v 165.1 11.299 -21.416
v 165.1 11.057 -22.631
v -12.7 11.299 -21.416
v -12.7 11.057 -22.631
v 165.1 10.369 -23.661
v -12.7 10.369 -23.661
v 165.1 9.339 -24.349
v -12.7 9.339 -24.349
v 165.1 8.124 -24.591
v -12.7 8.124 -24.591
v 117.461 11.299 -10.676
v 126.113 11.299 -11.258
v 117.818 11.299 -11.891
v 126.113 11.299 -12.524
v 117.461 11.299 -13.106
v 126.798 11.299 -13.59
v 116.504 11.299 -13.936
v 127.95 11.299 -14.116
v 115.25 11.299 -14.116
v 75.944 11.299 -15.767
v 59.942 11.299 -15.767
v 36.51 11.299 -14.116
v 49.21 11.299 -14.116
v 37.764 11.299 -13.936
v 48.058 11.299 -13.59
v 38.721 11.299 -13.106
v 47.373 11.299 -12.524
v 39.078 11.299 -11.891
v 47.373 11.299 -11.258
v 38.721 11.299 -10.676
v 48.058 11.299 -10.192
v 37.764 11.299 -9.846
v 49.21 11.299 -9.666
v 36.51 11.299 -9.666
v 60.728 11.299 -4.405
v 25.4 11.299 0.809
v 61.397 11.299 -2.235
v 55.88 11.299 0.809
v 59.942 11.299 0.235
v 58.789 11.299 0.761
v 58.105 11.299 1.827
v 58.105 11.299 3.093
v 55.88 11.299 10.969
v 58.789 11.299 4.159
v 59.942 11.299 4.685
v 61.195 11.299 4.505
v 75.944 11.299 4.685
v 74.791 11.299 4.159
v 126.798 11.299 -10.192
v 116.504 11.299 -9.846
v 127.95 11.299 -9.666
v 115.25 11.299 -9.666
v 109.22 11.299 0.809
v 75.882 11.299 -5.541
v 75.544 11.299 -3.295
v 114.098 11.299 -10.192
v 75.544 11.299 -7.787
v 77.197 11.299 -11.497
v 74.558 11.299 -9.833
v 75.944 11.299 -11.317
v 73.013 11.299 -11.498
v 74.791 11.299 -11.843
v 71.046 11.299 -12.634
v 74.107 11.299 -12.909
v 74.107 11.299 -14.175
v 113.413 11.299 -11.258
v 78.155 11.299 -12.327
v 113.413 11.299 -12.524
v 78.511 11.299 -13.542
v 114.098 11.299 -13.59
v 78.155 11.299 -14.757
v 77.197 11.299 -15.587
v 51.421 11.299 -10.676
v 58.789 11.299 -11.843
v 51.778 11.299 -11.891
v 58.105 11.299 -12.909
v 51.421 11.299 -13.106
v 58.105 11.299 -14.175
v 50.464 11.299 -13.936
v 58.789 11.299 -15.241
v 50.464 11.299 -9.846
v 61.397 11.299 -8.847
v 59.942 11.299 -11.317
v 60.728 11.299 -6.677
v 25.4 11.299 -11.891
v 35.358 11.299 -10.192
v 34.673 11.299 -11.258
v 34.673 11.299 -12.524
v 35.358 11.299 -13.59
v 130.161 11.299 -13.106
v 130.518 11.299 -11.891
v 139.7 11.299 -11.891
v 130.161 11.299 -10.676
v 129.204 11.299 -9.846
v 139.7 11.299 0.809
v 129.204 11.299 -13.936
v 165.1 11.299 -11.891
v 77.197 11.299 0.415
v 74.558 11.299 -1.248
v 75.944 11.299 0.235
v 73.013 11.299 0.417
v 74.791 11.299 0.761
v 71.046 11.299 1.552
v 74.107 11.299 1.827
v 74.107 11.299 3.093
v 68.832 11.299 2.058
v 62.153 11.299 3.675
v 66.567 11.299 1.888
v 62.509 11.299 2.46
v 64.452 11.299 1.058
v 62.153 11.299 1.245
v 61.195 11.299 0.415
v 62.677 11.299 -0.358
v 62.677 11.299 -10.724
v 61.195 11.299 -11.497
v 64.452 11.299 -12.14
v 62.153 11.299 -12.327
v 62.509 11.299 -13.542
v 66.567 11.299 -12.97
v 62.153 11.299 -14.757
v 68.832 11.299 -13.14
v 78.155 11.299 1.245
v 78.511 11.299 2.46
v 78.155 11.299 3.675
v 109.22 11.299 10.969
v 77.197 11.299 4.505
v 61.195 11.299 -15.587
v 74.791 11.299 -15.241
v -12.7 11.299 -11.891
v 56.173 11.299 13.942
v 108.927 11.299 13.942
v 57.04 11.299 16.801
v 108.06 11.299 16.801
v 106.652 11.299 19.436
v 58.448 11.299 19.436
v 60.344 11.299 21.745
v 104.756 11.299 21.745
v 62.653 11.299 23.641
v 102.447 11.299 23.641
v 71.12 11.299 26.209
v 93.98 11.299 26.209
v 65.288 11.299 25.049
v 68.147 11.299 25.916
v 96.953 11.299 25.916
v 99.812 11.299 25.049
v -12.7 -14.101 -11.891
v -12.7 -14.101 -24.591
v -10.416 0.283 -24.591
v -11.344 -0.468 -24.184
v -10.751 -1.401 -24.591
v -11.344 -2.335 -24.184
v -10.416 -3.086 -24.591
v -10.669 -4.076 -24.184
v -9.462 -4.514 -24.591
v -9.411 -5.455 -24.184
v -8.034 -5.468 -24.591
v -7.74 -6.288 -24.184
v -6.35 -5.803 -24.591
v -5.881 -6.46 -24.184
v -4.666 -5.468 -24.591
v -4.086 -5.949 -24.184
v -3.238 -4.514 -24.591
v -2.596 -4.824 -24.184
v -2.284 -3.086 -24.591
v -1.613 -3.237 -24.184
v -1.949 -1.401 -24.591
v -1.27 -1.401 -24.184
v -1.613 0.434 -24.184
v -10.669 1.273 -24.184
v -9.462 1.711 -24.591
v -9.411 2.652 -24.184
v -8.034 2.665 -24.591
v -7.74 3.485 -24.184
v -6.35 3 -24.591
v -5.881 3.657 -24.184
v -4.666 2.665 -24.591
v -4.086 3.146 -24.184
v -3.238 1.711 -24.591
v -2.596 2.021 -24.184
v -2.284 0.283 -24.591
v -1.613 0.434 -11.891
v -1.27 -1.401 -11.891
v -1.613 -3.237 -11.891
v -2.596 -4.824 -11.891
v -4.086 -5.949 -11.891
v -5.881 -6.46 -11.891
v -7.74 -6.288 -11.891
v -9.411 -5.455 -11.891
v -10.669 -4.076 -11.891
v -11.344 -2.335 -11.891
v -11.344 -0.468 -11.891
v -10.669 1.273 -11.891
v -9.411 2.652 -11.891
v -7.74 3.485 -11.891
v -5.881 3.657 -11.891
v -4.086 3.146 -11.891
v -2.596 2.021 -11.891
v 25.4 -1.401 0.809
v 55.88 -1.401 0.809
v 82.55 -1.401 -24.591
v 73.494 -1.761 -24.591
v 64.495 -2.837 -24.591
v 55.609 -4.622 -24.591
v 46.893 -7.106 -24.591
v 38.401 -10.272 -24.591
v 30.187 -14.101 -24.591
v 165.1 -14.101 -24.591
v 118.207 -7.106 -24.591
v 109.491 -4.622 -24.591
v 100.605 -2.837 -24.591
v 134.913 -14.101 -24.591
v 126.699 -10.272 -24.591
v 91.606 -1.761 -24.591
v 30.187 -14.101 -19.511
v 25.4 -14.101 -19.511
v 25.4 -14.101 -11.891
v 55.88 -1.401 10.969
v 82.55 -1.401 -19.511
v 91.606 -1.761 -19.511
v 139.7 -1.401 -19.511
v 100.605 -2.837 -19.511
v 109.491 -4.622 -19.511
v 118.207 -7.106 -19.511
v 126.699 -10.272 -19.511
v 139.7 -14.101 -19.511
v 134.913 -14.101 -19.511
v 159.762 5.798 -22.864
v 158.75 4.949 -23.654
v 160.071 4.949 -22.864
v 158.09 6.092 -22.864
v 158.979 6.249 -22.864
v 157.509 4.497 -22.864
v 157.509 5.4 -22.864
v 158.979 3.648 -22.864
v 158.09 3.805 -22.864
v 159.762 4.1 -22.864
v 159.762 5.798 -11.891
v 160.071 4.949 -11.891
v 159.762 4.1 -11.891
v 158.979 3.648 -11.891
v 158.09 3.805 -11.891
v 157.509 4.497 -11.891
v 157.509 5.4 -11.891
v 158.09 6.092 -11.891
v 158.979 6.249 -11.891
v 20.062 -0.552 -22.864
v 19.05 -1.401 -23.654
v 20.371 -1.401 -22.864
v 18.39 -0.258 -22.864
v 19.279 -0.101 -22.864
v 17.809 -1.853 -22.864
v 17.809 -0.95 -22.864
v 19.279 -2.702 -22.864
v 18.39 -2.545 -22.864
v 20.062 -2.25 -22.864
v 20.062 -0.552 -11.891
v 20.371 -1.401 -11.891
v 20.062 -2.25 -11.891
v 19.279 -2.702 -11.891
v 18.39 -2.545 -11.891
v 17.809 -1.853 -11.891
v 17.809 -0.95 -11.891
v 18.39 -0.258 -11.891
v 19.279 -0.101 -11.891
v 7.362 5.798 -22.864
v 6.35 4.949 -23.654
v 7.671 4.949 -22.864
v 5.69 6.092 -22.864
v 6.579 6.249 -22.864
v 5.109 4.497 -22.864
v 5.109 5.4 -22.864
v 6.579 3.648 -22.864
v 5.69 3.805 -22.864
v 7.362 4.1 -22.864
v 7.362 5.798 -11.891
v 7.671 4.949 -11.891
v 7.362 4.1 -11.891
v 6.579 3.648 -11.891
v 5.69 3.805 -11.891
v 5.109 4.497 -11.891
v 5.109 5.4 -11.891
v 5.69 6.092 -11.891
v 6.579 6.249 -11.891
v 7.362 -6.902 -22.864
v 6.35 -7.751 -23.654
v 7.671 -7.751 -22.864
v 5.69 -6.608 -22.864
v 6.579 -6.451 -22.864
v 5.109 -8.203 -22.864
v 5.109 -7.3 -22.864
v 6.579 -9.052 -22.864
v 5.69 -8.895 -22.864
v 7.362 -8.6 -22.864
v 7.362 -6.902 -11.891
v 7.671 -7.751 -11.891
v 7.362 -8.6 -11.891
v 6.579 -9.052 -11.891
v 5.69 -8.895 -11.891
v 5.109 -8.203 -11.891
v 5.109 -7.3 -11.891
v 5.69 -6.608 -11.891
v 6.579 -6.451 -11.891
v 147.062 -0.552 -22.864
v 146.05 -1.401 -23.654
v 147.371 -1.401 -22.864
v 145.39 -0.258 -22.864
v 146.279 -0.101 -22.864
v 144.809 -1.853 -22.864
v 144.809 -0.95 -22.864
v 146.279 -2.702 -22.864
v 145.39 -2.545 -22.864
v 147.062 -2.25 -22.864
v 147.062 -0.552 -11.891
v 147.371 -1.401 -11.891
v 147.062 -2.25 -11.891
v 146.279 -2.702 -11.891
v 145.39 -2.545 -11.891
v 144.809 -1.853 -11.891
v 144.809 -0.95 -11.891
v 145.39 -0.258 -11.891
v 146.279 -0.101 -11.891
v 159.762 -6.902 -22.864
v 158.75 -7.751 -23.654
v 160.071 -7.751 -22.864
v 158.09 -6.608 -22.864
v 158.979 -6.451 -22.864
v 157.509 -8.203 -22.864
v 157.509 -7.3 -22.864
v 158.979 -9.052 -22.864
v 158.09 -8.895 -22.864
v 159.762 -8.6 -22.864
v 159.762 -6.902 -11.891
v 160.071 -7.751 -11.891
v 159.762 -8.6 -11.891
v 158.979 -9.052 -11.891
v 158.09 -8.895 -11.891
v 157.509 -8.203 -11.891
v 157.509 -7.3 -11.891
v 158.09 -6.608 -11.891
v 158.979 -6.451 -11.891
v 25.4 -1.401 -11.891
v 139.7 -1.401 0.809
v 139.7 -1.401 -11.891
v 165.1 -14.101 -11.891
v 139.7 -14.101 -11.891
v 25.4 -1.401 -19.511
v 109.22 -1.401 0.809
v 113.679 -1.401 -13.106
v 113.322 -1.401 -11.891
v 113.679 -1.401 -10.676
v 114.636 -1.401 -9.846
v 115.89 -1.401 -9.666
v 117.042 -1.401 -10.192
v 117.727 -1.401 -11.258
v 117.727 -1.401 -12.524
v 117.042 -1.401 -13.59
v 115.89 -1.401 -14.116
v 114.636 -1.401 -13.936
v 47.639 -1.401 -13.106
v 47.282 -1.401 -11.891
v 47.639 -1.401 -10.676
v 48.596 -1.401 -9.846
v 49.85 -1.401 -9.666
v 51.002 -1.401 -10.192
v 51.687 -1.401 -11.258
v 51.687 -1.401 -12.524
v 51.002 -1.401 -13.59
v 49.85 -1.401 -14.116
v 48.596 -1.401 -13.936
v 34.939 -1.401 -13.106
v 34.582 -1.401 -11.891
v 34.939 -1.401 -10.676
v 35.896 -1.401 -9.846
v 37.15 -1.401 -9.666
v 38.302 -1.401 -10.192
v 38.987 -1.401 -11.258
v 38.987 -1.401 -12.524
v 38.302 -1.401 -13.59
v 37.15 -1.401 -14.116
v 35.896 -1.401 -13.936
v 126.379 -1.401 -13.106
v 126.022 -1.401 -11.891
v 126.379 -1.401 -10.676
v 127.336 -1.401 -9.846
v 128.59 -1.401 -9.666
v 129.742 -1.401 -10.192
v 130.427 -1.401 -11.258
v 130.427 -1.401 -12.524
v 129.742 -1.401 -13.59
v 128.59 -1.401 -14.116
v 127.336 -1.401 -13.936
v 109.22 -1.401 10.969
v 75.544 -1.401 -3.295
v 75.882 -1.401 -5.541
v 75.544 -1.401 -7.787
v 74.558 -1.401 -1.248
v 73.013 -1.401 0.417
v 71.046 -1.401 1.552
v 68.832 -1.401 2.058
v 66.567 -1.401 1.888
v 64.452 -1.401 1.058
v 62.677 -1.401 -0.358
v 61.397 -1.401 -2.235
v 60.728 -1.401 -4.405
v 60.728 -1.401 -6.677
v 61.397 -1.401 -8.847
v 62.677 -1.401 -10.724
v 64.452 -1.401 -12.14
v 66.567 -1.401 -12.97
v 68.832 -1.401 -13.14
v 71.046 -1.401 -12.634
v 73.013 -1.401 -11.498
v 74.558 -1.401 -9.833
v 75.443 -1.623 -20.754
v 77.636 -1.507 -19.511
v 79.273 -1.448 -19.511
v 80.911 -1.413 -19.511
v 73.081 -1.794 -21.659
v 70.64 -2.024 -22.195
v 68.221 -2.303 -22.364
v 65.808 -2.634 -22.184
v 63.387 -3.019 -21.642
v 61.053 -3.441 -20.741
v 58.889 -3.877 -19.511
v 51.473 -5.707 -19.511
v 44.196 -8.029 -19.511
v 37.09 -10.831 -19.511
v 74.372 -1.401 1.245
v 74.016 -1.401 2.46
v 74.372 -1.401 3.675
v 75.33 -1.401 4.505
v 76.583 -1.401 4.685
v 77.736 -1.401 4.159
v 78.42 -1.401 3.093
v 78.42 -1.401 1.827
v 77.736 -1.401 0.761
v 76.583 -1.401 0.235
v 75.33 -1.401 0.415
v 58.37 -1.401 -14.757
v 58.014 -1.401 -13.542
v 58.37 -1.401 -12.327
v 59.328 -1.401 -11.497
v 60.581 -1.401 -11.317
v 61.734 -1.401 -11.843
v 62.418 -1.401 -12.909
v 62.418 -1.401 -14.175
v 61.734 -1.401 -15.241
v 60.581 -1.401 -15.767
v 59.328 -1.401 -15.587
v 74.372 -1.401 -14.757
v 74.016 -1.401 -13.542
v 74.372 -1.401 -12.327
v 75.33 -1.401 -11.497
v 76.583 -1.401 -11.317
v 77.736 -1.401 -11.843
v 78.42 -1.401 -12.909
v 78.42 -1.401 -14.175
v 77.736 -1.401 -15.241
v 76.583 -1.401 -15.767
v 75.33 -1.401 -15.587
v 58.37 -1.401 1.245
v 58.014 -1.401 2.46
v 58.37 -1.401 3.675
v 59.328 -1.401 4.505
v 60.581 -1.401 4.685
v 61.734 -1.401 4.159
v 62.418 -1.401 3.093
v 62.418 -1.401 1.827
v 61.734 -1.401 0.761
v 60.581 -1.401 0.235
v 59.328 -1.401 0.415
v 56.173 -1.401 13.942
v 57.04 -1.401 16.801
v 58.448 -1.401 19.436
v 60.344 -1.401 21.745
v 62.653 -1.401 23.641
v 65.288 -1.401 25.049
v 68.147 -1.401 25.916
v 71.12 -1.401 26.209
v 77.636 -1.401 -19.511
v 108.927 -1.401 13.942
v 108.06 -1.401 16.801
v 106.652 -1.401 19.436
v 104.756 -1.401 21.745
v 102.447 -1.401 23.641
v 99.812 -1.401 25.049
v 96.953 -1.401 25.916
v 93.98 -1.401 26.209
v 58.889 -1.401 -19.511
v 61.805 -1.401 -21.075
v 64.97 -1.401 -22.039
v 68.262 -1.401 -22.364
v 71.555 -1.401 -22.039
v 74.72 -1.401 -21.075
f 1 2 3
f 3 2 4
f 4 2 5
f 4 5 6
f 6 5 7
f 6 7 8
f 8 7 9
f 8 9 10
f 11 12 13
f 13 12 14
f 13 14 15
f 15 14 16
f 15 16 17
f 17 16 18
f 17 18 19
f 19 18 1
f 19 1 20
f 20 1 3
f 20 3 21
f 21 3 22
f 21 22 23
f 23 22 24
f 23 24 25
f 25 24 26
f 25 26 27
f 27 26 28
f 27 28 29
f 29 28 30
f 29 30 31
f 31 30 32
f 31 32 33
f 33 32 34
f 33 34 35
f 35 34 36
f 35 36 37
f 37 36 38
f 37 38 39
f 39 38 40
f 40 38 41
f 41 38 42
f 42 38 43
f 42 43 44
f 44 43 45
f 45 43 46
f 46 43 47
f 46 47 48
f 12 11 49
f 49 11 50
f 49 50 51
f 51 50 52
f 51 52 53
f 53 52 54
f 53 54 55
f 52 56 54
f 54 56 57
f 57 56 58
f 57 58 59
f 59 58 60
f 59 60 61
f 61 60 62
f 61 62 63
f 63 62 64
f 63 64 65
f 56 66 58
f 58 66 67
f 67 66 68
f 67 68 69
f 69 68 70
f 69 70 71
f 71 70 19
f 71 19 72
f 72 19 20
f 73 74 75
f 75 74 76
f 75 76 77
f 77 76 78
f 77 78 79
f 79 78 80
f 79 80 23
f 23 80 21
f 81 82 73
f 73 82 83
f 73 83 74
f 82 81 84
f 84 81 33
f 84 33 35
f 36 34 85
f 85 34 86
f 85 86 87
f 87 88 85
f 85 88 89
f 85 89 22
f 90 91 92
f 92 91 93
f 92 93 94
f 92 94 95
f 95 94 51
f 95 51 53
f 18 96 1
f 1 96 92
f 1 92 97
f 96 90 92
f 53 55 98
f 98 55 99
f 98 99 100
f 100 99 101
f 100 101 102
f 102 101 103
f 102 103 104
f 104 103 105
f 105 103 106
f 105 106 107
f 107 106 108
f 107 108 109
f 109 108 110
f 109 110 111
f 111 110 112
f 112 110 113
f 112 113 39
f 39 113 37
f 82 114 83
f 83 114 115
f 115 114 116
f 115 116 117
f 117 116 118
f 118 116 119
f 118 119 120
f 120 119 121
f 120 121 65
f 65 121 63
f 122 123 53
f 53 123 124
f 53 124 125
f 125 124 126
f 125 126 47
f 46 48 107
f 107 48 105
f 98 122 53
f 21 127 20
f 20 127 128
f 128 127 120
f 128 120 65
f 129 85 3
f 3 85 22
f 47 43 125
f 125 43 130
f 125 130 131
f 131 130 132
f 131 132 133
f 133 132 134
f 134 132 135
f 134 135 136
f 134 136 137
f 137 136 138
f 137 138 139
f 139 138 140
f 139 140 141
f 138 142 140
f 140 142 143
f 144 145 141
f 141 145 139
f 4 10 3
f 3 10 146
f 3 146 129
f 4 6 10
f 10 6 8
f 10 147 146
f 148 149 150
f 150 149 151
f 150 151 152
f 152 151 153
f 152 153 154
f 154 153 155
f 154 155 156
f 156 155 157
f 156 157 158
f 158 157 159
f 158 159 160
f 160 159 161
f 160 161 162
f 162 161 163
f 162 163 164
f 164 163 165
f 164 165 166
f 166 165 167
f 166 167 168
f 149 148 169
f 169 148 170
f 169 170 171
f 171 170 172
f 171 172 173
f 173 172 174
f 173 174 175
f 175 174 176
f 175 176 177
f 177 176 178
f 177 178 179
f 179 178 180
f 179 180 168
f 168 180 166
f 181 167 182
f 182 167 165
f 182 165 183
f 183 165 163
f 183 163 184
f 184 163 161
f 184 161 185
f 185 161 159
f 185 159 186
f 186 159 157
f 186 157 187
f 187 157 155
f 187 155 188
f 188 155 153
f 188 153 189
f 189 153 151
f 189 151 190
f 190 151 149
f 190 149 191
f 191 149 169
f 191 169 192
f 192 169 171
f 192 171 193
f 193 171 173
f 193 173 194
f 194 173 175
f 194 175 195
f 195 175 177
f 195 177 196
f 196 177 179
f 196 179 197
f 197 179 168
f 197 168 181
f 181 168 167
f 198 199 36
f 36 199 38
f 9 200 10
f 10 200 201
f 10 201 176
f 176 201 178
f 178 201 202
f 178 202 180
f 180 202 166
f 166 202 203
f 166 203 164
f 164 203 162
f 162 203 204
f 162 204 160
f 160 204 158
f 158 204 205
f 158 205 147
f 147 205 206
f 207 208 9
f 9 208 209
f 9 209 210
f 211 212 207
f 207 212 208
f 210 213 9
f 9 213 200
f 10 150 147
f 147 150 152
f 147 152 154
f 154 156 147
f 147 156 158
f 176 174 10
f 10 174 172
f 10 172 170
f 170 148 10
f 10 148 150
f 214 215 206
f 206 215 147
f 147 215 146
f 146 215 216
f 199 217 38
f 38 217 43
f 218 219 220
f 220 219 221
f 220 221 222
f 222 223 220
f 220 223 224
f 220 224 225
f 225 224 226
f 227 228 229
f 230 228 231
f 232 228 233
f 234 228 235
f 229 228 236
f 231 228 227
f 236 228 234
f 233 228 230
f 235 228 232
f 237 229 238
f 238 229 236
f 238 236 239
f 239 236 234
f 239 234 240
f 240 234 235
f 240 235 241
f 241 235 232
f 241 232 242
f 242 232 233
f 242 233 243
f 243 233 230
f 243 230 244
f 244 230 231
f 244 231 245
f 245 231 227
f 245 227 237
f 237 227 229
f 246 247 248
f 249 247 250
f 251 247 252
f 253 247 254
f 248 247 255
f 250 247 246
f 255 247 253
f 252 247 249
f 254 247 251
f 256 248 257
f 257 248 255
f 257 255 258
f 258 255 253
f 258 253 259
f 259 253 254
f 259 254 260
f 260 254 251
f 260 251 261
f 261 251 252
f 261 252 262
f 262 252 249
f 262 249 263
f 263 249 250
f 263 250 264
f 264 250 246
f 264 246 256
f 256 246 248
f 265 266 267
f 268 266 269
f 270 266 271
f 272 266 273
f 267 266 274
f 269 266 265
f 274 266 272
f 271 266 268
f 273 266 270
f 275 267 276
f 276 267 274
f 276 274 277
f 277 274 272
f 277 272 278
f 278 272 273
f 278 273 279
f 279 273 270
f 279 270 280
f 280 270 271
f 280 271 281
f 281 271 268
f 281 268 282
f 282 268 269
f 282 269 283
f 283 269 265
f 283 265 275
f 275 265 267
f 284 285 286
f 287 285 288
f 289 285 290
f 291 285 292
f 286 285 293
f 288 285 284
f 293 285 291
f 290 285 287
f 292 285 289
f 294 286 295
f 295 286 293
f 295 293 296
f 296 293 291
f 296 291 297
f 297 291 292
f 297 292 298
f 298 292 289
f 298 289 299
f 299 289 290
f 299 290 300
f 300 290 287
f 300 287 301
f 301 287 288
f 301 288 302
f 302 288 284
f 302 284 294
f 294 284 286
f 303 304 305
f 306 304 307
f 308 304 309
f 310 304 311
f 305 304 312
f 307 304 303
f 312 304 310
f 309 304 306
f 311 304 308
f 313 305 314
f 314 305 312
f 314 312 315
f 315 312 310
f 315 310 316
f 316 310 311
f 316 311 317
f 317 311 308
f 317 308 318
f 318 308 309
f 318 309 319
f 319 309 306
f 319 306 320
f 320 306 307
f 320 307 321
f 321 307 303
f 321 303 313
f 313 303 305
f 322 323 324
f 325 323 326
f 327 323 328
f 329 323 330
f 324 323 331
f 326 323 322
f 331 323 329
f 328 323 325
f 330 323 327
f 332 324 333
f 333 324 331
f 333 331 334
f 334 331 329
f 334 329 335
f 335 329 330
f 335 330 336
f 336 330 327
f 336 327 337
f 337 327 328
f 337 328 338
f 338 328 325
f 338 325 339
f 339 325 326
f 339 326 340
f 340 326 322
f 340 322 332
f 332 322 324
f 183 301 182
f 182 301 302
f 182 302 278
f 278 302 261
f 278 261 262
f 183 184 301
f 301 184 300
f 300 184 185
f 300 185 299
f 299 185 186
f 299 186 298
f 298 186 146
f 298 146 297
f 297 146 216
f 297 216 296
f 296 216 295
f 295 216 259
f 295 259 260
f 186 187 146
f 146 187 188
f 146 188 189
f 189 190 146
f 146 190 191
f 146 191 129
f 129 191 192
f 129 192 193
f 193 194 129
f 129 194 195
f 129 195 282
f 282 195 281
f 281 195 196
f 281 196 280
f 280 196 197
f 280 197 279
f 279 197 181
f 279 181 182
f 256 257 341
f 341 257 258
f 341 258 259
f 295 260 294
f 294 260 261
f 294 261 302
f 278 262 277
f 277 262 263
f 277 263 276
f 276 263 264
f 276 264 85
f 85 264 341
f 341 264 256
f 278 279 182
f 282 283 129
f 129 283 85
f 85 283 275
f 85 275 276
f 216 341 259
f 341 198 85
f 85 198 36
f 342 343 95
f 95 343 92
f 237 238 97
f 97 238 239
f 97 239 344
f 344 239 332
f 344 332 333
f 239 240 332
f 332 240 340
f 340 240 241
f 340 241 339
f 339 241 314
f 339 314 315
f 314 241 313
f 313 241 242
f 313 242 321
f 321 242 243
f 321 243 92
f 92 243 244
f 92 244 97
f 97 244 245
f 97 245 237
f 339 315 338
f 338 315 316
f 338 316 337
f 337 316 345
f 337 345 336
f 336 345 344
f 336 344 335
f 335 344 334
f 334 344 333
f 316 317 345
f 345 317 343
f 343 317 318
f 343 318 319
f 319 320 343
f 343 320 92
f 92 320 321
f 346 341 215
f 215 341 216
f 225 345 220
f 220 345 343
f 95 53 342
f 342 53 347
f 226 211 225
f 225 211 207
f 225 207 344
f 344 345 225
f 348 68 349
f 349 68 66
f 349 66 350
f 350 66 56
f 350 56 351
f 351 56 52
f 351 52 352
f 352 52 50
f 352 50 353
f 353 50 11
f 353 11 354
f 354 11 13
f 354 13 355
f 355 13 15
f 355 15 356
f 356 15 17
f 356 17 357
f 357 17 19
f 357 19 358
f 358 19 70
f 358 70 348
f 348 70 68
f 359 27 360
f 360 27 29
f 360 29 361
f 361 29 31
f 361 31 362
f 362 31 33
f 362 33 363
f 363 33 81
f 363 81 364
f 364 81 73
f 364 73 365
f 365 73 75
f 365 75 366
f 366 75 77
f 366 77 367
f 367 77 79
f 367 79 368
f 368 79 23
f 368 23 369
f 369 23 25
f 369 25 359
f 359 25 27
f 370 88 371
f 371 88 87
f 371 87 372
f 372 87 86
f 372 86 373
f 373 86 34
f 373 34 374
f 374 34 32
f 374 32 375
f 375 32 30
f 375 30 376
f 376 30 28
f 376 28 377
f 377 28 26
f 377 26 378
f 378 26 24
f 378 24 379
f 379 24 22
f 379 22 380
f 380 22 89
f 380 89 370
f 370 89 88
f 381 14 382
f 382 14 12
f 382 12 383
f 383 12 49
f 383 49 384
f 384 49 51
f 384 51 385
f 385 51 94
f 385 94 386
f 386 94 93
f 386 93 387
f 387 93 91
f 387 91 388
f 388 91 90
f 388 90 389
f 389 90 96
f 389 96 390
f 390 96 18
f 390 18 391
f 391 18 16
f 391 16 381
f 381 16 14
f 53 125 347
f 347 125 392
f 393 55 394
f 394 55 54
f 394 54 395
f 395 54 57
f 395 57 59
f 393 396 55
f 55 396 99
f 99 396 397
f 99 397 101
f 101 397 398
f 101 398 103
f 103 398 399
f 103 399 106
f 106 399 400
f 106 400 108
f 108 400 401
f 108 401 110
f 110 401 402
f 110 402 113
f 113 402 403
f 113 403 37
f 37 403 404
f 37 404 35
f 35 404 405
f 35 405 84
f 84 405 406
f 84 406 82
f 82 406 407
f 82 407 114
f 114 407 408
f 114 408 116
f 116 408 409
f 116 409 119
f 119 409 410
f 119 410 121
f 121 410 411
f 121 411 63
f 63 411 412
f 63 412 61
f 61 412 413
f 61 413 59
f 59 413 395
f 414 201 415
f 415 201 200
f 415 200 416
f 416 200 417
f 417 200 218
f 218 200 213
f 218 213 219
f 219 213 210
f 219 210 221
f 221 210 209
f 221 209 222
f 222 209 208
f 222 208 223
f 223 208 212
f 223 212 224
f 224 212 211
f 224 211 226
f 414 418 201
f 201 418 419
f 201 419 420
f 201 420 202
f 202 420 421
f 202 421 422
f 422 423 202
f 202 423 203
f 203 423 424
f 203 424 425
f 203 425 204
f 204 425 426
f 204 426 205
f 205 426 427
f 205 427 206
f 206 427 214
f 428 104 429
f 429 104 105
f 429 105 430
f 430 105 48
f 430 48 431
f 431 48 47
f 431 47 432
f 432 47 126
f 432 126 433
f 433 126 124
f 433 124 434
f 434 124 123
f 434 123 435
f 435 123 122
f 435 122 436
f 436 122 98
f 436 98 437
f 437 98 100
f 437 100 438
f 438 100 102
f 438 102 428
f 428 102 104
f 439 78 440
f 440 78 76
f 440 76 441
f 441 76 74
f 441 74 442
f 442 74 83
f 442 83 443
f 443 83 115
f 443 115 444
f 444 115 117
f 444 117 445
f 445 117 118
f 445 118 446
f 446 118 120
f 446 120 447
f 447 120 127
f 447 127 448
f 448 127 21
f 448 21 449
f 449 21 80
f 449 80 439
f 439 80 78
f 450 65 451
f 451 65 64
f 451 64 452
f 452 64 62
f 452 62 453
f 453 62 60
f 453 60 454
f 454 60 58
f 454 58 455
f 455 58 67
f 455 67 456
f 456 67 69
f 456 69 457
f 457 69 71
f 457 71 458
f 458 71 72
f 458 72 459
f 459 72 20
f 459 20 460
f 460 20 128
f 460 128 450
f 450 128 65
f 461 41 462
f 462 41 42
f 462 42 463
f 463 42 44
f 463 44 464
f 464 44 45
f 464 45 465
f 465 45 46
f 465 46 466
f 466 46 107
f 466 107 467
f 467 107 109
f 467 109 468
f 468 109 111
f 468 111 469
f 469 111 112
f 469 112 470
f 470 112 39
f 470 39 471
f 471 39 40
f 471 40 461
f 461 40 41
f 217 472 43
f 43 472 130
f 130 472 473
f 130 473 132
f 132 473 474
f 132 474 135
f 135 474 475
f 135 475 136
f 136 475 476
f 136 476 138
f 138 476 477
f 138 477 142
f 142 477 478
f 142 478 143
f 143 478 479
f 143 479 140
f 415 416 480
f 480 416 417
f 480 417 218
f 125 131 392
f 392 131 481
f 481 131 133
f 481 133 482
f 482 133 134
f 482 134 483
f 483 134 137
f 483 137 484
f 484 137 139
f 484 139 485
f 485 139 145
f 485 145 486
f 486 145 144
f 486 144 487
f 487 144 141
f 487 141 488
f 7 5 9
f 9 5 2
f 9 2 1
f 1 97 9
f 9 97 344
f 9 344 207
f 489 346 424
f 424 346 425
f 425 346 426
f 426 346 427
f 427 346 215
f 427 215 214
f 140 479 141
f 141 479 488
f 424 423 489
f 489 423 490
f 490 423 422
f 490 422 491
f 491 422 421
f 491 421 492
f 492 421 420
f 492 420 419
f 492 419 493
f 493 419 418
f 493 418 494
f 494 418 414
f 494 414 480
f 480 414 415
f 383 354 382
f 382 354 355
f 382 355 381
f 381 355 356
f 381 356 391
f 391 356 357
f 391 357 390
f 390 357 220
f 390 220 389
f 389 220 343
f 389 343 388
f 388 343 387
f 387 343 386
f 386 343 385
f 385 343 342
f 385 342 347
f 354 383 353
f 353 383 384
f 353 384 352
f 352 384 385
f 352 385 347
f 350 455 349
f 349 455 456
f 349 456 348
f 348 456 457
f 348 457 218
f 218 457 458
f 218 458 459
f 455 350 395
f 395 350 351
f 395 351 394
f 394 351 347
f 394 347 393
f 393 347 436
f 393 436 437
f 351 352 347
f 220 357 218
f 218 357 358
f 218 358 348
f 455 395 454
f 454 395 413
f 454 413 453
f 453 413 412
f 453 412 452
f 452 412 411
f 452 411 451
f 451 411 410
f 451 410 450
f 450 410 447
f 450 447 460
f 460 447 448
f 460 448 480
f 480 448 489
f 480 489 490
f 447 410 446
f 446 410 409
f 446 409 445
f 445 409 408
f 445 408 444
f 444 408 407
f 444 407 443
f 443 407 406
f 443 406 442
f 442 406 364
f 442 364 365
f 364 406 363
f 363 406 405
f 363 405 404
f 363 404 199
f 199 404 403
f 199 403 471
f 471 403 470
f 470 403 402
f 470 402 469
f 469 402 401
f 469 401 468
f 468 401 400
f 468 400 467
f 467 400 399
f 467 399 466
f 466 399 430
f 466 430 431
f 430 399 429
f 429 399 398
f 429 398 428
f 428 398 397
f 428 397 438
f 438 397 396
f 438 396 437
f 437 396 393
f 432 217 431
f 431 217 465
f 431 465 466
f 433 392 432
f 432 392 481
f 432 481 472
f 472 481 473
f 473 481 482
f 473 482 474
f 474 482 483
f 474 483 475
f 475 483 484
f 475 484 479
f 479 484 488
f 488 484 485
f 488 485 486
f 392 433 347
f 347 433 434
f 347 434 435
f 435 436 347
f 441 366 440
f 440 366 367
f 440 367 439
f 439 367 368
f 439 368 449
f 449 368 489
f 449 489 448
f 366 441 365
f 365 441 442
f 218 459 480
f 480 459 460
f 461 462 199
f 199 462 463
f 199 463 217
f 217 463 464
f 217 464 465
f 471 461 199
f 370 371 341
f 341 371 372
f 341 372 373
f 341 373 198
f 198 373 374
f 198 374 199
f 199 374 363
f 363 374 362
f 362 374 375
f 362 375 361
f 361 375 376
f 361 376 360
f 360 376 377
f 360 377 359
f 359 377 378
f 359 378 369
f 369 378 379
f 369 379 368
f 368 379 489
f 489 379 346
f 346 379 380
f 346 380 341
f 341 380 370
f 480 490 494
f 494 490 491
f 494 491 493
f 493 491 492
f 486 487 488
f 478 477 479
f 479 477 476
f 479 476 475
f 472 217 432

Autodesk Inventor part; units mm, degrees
ref_plane "YZ Plane" through (0, 0, 0) normal (1, 0, 0) x (0, 1, 0)
ref_plane "XZ Plane" through (0, 0, 0) normal (0, 1, 0) x (-1, 0, 0)
ref_plane "XY Plane" through (0, 0, 0) normal (0, 0, 1) x (1, 0, 0)
sketch "Sketch1" plane through (0, 0, 0) normal (1, 0, 0) x (0, 1, 0)
  line L0 (11.2985, 26.2091) -> (-1.4015, 26.2091)
  line L1 (-1.4015, 26.2091) -> (-1.4015, -24.5909)
  line L2 (-1.4015, -24.5909) -> (11.2985, -24.5909)
  line L3 (11.2985, -24.5909) -> (11.2985, 26.2091)
  point P0 (0, 0)
  dimension "d0" = 50.8
  dimension "d1" = 12.7
extrude "Extrusion1" add sketch "Sketch1" along normal blind 165.1
sketch "Sketch2" plane through (0, 11.2985, 26.2091) normal (0, 1, 0) x (1, 0, 0)
  circle A0 centre (68.2625, 31.75) radius 12.7
  circle A1 centre (87.3125, 31.75) radius 12.7
  line L0 (0, 50.8) -> (0, 0) projected
  line L1 (0, 50.8) -> (165.1, 50.8) projected
  point P0 (0, 26.2091)
  point P1 (60.2615, 39.751)
  point P2 (76.2635, 39.751)
  point P3 (76.2635, 23.749)
  point P4 (60.2615, 23.749)
  dimension "d4" = 25.4
  dimension "d5" = 25.4
  dimension "d6" = 0
  dimension "d7" = 19.05
  dimension "d8" = 68.2625
  dimension "d9" = 19.05
  dimension "d46" = 0
  dimension "d47" = 0
  dimension "d48" = 0
  dimension "d49" = 0
  dimension "d50" = 16.002
  dimension "d51" = 16.002
  dimension "d52" = 8.001
  dimension "d53" = 8.001
sketch "Sketch8" plane through (0, 11.2985, 26.2091) normal (0, 1, 0) x (1, 0, 0)
  line L0 (-37.599, -14.8006) -> (55.88, -14.8006)
  line L1 (55.88, -14.8006) -> (55.88, 38.1)
  line L2 (55.88, 38.1) -> (-37.599, 38.1)
  line L3 (-37.599, 38.1) -> (-37.599, -14.8006)
  line L4 (109.22, -16.386) -> (193.9952, -16.386)
  line L5 (193.9952, -16.386) -> (193.9952, 38.1)
  line L6 (193.9952, 38.1) -> (109.22, 38.1)
  line L7 (109.22, 38.1) -> (109.22, -16.386)
  line L8 (0, 50.8) -> (165.1, 50.8) projected
  line L9 (0, 50.8) -> (0, 0) projected
  line L10 (165.1, 50.8) -> (165.1, 0) projected
  point P0 (0, 26.2091)
  dimension "d36" = 12.7
  dimension "d37" = 55.88
  dimension "d38" = 12.7
  dimension "d39" = 55.88
extrude "Extrusion8" cut sketch "Sketch8" against normal blind 76.2
fillet "Fillet1" radius 15.24 1 edges at (109.22, 4.9485, 26.2091)
fillet "Fillet2" radius 15.24 1 edges at (55.88, 4.9485, 26.2091)
hole "Hole1" at (60.2615, 11.2985, -13.5419) at (76.2635, 11.2985, -13.5419) at (76.2635, 11.2985, 2.4601) at (60.2615, 11.2985, 2.4601) direction (0, -1, 0) diameter 4.4958 end through all clearance for "Flat Head Machine Screw" size "M4" standard "Ansi Metric M Profile"
sketch "Sketch10" plane through (0, 11.2985, -24.5909) normal (0, 1, 0) x (1, 0, 0)
  circle A0 centre (76.2635, -27.051) radius 2.2479 projected
  circle A1 centre (60.2615, -11.049) radius 2.2479 projected
  circle A2 centre (60.2615, -27.051) radius 2.2479 projected
  circle A3 centre (76.2635, -11.049) radius 2.2479 projected
  line L0 (76.2635, -11.049) -> (60.2615, -27.051)
  line L1 (60.2615, -11.049) -> (76.2635, -27.051)
  point P0 (0, -24.5909)
  point P1 (68.2625, -19.05)
  dimension "d61" = 8.001
  dimension "d62" = 8.001
hole "Hole2" at (68.2625, 11.2985, -5.5409) direction (0, -1, 0) diameter 15.24 end through all
sketch "Sketch11" plane through (0, 11.2985, -11.8909) normal (0, 0, 1) x (1, 0, 0)
  line L0 (55.88, 0) -> (0, 0)
  line L1 (0, 0) -> (0, -12.7)
  line L2 (0, -12.7) -> (55.88, -12.7)
  line L3 (55.88, -12.7) -> (55.88, 0)
  line L4 (0, -12.7) -> (0, 0) projected
  line L5 (55.88, 0) -> (55.88, -12.7) projected
  line L6 (0, 0) -> (55.88, 0) projected
  line L7 (55.88, -12.7) -> (0, -12.7) projected
  point P0 (0, -11.2985)
  dimension "d70" = 0
  dimension "d71" = 0
  dimension "d72" = 0
  dimension "d73" = 0
extrude "Extrusion9" add sketch "Sketch11" along normal blind 12.7
sketch "Sketch12" plane through (109.22, 11.2985, -11.8909) normal (0, 0, 1) x (1, 0, 0)
  line L0 (0, 0) -> (55.88, 0)
  line L1 (55.88, 0) -> (55.88, -12.7)
  line L2 (55.88, -12.7) -> (0, -12.7)
  line L3 (0, -12.7) -> (0, 0)
  line L4 (55.88, 0) -> (55.88, -12.7) projected
  line L5 (0, 0) -> (55.88, 0) projected
  line L6 (55.88, -12.7) -> (0, -12.7) projected
  line L7 (0, -12.7) -> (0, 0) projected
  point P0 (-109.22, -11.2985)
  dimension "d76" = 0
  dimension "d77" = 0
  dimension "d78" = 0
  dimension "d79" = 0
extrude "Extrusion10" add sketch "Sketch12" along normal blind 12.7
sketch "Sketch13" plane through (0, 11.2985, -24.5909) normal (0, 1, 0) x (1, 0, 0)
  line L0 (55.88, -25.4) -> (55.88, -35.56) projected
  line L1 (0, 0) -> (165.1, 0) projected
  line L2 (109.22, -35.56) -> (109.22, -25.4) projected
  point P0 (0, -24.5909)
  point P1 (49.53, -12.7)
  point P2 (36.83, -12.7)
  point P3 (115.57, -12.7)
  point P4 (128.27, -12.7)
  dimension "d82" = 19.05
  dimension "d83" = 6.35
  dimension "d84" = 12.7
  dimension "d85" = 12.7
  dimension "d86" = 6.35
  dimension "d87" = 19.05
  dimension "d88" = 12.7
  dimension "d89" = 12.7
hole "Hole3" at (49.53, 11.2985, -11.8909) at (36.83, 11.2985, -11.8909) at (115.57, 11.2985, -11.8909) at (128.27, 11.2985, -11.8909) direction (0, -1, 0) diameter 4.4958 depth 25.4 tip angle 118.188 clearance for "Flat Head Machine Screw (82)" size "#8" standard "Ansi Unified Screw Threads"
sketch "Sketch14" plane through (0, 11.2985, -24.5909) normal (0, 1, 0) x (1, 0, 0)
  line L0 (0, 0) -> (25.4, 0)
  line L1 (25.4, 0) -> (25.4, -25.4)
  line L2 (25.4, -25.4) -> (0, -25.4)
  line L3 (0, -25.4) -> (0, 0)
  line L4 (165.1, 0) -> (139.7, 0)
  line L5 (139.7, 0) -> (139.7, -25.4)
  line L6 (139.7, -25.4) -> (165.1, -25.4)
  line L7 (165.1, -25.4) -> (165.1, 0)
  line L8 (0, 0) -> (165.1, 0) projected
  line L9 (165.1, 0) -> (165.1, -25.4) projected
  line L10 (165.1, -25.4) -> (109.22, -25.4) projected
  line L11 (0, 0) -> (0, -25.4) projected
  line L12 (55.88, -25.4) -> (0, -25.4) projected
  point P0 (0, -24.5909)
  dimension "d97" = 0
  dimension "d98" = 25.4
  dimension "d99" = 0
  dimension "d100" = 0
  dimension "d101" = 25.4
  dimension "d102" = 0
  dimension "d103" = 0
  dimension "d104" = 0
extrude "Extrusion11" add sketch "Sketch14" against normal blind 25.4
sketch "Sketch16" plane through (0, -14.1015, -24.5909) normal (0, -1, 0) x (1, 0, 0)
  line L0 (-15.071, 42.5671) -> (25.4, 42.5671)
  line L1 (25.4, 42.5671) -> (25.4, 12.7)
  line L2 (25.4, 12.7) -> (-15.071, 12.7)
  line L3 (-15.071, 12.7) -> (-15.071, 42.5671)
  line L4 (139.7, 42.5671) -> (181.0335, 42.5671)
  line L5 (181.0335, 42.5671) -> (181.0335, 12.7)
  line L6 (181.0335, 12.7) -> (139.7, 12.7)
  line L7 (139.7, 12.7) -> (139.7, 42.5671)
  line L8 (165.1, 25.4) -> (139.7, 25.4) projected
  line L9 (139.7, 25.4) -> (139.7, 0) projected
  line L10 (25.4, 0) -> (25.4, 25.4) projected
  line L11 (25.4, 25.4) -> (0, 25.4) projected
  point P0 (0, 24.5909)
  dimension "d112" = 12.7
  dimension "d113" = 0
  dimension "d114" = 0
  dimension "d115" = 12.7
extrude "Extrusion13" cut sketch "Sketch16" against normal blind 50.8
sketch "Sketch17" plane through (0, -14.1015, -11.8909) normal (0, 0, 1) x (1, 0, 0)
  line L0 (0, 0) -> (0, 25.4) projected
  line L1 (0, 25.4) -> (25.4, 25.4) projected
  line L2 (25.4, 0) -> (0, 0) projected
  line L3 (165.1, 25.4) -> (165.1, 0) projected
  line L4 (139.7, 25.4) -> (165.1, 25.4) projected
  line L5 (165.1, 0) -> (139.7, 0) projected
  point P0 (0, 14.1015)
  point P1 (6.35, 19.05)
  point P2 (6.35, 6.35)
  point P3 (19.05, 12.7)
  point P4 (146.05, 12.7)
  point P5 (158.75, 19.05)
  point P6 (158.75, 6.35)
  dimension "d118" = 6.35
  dimension "d119" = 6.35
  dimension "d120" = 6.35
  dimension "d121" = 6.35
  dimension "d122" = 19.05
  dimension "d123" = 12.7
  dimension "d124" = 19.05
  dimension "d125" = 12.7
  dimension "d126" = 6.35
  dimension "d127" = 6.35
  dimension "d128" = 6.35
  dimension "d129" = 6.35
hole "Hole4" at (6.35, 4.9485, -11.8909) at (6.35, -7.7515, -11.8909) at (19.05, -1.4015, -11.8909) at (146.05, -1.4015, -11.8909) at (158.75, 4.9485, -11.8909) at (158.75, -7.7515, -11.8909) direction (0, 0, -1) diameter 2.6416 depth 10.9728 tip angle 118.188 thread size "6-32 UNC" class "2B" standard "ANSI Unified Screw Threads"
sketch "Sketch18" plane through (71.12, -1.4015, 26.2091) normal (0, -1, 0) x (1, 0, 0)
  line L0 (-45.72, -45.72) -> (68.58, -45.72)
  line L1 (68.58, -45.72) -> (68.58, -50.8)
  line L2 (68.58, -50.8) -> (-45.72, -50.8)
  line L3 (-45.72, -50.8) -> (-45.72, -45.72)
  line L4 (-45.72, -50.8) -> (68.58, -50.8) projected
  line L5 (68.58, -38.1) -> (68.58, -50.8) projected
  line L6 (-45.72, -50.8) -> (-45.72, -38.1) projected
  point P0 (-71.12, -26.2091)
  dimension "d137" = 0
  dimension "d138" = 0
  dimension "d139" = 5.08
  dimension "d140" = 0
extrude "Extrusion14" add sketch "Sketch18" along normal blind 12.7
sketch "Sketch19" plane through (165.1, 11.2985, -24.5909) normal (0, 0, -1) x (-1, 0, 0)
  line L0 (82.55, -51.592) -> (82.55, 23.9487)
  line L1 (165.1, 0) -> (165.1, -25.4) projected
  line L2 (0, 0) -> (0, -25.4) projected
  arc A0 (134.9134, -25.4) -> (30.1866, -25.4) centre (82.55, -127) ccw
  line L3 (165.1, -25.4) -> (0, -25.4) projected
  line L4 (134.9134, -25.4) -> (30.1866, -25.4)
  point P0 (165.1, -11.2985)
  dimension "d143" = 82.55
  dimension "d144" = 82.55
  dimension "d145" = 0
  dimension "d146" = 101.6
  dimension "d147" = 228.6
extrude "Extrusion15" cut sketch "Sketch19" against normal blind 6.35
sketch "Sketch20" plane through (0, 0, 0) normal (-1, 0, 0) x (0, 0, 1)
  line L0 (-24.5909, 11.2985) -> (-24.5909, -14.1015) projected
  line L1 (-11.8909, -14.1015) -> (-24.5909, -14.1015) projected
  line L2 (-11.8909, -14.1015) -> (-11.8909, 11.2985) projected
  line L3 (-24.5909, 11.2985) -> (-11.8909, 11.2985) projected
  line L4 (-11.8909, -14.1015) -> (-11.8909, -1.4015) projected
  line L5 (-11.8909, -14.1015) -> (-24.5909, -14.1015)
  line L6 (-24.5909, -14.1015) -> (-24.5909, 11.2985)
  line L7 (-24.5909, 11.2985) -> (-11.8909, 11.2985)
  line L8 (-11.8909, 11.2985) -> (-11.8909, -14.1015)
  point P0 (0, 0)
extrude "Extrusion16" add sketch "Sketch20" along normal blind 12.7
sketch "Sketch21" plane through (25.4, -14.1015, -11.8909) normal (0, 0, 1) x (1, 0, 0)
  line L0 (0, 0) -> (-38.1, 0) projected
  line L1 (-38.1, 0) -> (-38.1, 25.4) projected
  point P0 (-25.4, 14.1015)
  point P1 (-31.75, 12.7)
  dimension "d152" = 12.7
  dimension "d153" = 6.35
hole "Hole5" at (-6.35, -1.4015, -11.8909) direction (0, 0, -1) diameter 10.16 depth 12.2936 tip angle 118.188
fillet "Fillet3" radius 3.175 1 edges at (76.2, 11.2985, -24.5909)
sketch "Sketch22" plane through (71.12, -1.4015, 26.2091) normal (0, -1, 0) x (1, 0, 0)
  circle A0 centre (-2.8575, -31.75) radius 7.62 projected
  circle A1 centre (-2.8575, -31.75) radius 16.8231
  point P0 (-71.12, -26.2091)
extrude "Extrusion17" cut sketch "Sketch22" along normal blind 25.4
properties part number "GripperM otorBlock"
